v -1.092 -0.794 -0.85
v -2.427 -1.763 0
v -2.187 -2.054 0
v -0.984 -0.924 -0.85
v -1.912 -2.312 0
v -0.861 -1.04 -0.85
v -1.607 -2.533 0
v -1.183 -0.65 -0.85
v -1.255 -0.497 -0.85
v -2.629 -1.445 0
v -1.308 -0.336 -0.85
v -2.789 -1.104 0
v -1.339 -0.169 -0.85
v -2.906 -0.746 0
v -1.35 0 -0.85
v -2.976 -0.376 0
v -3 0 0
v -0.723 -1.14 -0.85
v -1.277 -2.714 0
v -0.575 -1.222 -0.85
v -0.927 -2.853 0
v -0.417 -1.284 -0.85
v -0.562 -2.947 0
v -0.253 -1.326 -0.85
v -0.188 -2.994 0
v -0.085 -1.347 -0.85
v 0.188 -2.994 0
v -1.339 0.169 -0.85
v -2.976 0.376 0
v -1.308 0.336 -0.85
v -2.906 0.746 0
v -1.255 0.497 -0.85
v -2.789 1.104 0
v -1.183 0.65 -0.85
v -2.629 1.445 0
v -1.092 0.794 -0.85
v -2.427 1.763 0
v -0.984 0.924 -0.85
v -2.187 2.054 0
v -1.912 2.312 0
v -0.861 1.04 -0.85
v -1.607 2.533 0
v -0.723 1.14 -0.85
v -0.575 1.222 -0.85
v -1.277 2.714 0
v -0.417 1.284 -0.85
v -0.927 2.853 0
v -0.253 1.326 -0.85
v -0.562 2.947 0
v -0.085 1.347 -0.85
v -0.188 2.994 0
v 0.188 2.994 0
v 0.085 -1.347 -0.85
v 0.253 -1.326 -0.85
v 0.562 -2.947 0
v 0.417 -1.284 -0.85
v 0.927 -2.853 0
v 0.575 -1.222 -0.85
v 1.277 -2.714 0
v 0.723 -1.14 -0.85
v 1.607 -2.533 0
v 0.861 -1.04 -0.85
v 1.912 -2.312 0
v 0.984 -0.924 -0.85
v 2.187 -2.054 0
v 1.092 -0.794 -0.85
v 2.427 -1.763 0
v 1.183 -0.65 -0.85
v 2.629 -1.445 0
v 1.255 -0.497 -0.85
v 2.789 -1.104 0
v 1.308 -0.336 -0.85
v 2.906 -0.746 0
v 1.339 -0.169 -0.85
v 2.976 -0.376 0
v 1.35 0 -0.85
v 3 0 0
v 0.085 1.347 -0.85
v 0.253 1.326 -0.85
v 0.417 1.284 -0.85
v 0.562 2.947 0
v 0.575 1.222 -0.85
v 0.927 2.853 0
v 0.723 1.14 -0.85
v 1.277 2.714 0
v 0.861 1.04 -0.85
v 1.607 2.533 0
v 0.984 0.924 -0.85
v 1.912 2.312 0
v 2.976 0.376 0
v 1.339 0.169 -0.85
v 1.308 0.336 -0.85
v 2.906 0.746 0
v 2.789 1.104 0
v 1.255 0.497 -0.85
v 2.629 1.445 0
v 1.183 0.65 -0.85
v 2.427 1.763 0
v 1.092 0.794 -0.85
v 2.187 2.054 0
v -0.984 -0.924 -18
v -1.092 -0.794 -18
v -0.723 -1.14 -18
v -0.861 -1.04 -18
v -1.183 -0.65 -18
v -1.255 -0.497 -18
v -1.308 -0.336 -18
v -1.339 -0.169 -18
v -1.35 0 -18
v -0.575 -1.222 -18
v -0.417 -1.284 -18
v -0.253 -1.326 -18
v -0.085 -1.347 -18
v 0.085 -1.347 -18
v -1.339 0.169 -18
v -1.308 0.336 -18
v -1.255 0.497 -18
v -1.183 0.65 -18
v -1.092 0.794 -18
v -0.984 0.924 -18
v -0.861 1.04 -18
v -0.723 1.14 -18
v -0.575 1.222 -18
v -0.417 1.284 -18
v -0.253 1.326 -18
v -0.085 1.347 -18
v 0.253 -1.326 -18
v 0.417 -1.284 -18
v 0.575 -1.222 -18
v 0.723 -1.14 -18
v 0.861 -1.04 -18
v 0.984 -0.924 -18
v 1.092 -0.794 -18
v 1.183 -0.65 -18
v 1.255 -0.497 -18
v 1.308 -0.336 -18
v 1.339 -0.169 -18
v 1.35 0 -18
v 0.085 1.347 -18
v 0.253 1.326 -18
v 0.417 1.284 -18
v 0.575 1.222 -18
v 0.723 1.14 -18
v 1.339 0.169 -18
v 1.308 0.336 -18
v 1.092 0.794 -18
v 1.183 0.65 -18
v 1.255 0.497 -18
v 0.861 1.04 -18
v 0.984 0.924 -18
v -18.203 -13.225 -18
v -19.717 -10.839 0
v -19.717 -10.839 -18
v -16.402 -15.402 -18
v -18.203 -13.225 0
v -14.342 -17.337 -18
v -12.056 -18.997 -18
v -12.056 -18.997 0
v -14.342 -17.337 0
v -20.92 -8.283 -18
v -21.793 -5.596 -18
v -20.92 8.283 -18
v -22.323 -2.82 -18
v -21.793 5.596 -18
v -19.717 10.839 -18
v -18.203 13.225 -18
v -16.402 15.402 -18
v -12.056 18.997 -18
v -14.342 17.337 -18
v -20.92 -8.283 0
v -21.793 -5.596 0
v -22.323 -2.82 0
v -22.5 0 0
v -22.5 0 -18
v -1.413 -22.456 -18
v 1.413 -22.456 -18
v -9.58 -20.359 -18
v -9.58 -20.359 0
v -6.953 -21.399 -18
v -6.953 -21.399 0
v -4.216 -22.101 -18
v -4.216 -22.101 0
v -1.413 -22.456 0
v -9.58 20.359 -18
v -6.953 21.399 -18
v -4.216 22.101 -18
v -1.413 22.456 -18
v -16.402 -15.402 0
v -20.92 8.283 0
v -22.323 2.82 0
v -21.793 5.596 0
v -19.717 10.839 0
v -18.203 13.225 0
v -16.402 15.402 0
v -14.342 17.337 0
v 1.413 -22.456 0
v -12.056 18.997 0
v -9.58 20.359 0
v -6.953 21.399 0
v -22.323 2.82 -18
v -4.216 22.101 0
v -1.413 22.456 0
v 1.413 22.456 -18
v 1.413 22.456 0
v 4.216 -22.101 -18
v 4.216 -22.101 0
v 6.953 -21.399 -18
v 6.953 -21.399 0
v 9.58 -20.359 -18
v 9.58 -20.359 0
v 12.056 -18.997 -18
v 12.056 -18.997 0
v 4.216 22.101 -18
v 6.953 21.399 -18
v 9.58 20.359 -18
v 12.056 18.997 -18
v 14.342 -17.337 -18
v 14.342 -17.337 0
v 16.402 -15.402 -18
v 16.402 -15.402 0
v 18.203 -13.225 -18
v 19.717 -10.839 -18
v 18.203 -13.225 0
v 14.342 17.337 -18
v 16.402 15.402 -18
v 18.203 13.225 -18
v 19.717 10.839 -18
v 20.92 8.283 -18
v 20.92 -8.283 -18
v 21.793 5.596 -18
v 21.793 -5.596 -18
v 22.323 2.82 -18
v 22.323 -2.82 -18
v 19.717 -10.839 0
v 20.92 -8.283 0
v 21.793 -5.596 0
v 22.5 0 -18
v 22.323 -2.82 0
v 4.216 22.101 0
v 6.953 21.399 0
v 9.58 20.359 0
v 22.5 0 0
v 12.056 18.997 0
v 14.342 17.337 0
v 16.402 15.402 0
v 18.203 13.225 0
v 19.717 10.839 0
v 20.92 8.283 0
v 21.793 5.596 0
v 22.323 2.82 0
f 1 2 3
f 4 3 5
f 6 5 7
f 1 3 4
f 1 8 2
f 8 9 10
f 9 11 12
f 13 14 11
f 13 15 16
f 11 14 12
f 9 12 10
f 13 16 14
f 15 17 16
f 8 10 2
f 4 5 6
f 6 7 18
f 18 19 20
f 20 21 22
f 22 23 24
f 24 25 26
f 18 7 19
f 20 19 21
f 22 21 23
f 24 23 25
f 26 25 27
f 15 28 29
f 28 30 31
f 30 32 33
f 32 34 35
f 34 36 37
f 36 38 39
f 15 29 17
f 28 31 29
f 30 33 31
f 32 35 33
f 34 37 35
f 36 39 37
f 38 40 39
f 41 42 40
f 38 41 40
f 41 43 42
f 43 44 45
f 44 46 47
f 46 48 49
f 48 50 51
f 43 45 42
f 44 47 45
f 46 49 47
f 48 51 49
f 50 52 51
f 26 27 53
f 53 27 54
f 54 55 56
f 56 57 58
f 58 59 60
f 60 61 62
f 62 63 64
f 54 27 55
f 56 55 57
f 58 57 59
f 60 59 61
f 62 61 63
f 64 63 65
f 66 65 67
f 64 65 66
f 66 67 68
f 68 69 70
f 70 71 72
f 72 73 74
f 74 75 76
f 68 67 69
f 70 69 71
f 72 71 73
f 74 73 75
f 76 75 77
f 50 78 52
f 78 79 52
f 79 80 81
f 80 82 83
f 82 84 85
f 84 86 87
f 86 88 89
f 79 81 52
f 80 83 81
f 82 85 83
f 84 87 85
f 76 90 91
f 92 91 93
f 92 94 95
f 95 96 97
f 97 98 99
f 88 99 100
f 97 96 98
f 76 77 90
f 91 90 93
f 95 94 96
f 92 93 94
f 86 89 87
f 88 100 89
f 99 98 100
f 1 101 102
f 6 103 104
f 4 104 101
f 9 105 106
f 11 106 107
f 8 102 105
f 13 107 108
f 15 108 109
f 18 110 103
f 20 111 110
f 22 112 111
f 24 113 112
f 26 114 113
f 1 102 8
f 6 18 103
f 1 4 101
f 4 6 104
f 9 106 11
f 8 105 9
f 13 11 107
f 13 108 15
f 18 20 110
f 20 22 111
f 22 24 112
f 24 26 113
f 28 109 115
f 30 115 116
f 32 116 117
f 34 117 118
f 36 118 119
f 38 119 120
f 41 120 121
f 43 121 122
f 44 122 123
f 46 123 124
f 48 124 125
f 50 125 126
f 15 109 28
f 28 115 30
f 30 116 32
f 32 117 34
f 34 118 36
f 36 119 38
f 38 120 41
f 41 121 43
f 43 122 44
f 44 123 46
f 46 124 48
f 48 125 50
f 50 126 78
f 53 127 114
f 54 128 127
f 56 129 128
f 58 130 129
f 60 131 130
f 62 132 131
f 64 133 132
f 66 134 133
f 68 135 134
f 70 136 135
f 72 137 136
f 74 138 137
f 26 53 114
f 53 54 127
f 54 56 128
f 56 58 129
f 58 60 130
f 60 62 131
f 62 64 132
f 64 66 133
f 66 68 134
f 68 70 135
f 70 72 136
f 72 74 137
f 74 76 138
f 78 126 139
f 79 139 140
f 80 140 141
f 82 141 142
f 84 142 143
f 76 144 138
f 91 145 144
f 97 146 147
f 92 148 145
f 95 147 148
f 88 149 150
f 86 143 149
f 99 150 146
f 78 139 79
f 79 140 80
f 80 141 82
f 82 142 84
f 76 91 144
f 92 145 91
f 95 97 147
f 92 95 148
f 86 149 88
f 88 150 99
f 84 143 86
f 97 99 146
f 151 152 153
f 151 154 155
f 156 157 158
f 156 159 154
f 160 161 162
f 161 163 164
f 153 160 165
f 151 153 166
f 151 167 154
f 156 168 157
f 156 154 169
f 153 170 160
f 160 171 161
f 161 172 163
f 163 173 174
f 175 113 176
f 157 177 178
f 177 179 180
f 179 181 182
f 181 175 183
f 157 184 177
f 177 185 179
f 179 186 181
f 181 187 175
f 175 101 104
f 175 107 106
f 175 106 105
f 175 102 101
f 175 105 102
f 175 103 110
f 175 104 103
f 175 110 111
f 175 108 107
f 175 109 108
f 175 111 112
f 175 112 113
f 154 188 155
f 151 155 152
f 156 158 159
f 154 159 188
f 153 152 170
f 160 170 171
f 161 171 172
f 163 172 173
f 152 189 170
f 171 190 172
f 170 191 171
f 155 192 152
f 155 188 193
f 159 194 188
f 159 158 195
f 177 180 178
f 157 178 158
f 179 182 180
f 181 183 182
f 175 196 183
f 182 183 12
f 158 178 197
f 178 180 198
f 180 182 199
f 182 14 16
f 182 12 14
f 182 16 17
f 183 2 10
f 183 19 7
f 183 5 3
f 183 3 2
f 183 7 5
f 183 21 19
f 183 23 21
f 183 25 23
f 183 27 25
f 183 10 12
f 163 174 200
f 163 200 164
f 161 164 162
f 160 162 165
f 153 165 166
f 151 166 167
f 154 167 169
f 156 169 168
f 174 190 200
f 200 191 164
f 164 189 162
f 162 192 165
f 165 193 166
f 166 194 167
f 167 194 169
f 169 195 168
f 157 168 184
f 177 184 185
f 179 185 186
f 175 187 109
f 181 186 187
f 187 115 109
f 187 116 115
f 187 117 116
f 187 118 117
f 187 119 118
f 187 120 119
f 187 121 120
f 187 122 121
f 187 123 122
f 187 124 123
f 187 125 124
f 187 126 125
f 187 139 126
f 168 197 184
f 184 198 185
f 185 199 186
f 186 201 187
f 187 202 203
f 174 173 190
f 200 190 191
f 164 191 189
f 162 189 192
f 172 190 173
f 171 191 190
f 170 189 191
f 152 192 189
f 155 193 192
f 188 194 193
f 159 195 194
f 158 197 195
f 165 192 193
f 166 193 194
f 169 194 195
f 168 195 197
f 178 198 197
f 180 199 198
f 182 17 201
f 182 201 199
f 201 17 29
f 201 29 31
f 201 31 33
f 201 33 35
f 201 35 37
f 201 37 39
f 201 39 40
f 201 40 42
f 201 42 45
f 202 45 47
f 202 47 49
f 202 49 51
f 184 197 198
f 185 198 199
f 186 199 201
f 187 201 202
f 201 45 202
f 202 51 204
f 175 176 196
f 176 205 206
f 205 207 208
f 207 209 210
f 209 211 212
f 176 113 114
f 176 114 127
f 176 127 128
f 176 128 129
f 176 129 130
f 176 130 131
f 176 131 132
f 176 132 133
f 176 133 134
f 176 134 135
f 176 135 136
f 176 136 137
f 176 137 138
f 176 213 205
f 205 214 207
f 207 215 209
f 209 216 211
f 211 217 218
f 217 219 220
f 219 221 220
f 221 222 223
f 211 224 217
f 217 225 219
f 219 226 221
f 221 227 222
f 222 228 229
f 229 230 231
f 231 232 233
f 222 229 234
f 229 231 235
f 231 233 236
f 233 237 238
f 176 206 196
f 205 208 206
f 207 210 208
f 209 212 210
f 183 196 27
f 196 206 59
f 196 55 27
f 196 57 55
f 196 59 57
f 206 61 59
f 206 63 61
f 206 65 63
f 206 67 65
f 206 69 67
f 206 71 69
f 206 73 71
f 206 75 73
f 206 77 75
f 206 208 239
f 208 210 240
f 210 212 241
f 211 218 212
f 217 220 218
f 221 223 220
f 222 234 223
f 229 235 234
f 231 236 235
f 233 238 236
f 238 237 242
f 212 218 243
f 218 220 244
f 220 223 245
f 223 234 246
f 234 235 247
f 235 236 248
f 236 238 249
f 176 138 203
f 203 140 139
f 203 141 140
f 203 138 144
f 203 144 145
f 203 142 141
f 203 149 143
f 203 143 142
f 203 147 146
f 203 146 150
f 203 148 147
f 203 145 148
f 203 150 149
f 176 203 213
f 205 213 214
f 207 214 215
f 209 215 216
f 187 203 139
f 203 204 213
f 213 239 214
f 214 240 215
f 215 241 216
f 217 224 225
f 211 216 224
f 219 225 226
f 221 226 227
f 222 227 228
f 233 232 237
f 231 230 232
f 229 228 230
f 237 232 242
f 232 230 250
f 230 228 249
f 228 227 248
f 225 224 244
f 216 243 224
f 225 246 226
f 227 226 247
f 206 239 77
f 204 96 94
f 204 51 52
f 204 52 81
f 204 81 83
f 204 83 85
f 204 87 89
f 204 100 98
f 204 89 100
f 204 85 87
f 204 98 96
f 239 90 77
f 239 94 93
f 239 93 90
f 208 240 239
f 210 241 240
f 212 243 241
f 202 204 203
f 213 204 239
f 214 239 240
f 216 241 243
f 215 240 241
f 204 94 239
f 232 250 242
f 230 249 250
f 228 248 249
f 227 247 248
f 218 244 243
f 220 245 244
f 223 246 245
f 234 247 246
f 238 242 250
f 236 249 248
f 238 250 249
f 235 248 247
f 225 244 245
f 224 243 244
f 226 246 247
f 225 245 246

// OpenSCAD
$fn = 50;

difference() {
	union() {
		translate(v = [0, 0, -18.0]) {
			cylinder(h = 18, r = 22.5);
		}
	}
	union() {
		translate(v = [0, 0, 0]) {
			rotate(a = [0, 0, 0]) {
				difference() {
					union() {
						translate(v = [0, 0, -21.0]) {
							cylinder(h = 21, r = 1.0);
						}
						translate(v = [0, 0, -0.85]) {
							cylinder(h = 0.85, r1 = 1.35, r2 = 3.0);
						}
						translate(v = [0, 0, -21.0]) {
							cylinder(h = 21, r = 1.35);
						}
						translate(v = [0, 0, -21.0]) {
							cylinder(h = 21, r = 1.0);
						}
					}
					union();
				}
			}
		}
	}
}
